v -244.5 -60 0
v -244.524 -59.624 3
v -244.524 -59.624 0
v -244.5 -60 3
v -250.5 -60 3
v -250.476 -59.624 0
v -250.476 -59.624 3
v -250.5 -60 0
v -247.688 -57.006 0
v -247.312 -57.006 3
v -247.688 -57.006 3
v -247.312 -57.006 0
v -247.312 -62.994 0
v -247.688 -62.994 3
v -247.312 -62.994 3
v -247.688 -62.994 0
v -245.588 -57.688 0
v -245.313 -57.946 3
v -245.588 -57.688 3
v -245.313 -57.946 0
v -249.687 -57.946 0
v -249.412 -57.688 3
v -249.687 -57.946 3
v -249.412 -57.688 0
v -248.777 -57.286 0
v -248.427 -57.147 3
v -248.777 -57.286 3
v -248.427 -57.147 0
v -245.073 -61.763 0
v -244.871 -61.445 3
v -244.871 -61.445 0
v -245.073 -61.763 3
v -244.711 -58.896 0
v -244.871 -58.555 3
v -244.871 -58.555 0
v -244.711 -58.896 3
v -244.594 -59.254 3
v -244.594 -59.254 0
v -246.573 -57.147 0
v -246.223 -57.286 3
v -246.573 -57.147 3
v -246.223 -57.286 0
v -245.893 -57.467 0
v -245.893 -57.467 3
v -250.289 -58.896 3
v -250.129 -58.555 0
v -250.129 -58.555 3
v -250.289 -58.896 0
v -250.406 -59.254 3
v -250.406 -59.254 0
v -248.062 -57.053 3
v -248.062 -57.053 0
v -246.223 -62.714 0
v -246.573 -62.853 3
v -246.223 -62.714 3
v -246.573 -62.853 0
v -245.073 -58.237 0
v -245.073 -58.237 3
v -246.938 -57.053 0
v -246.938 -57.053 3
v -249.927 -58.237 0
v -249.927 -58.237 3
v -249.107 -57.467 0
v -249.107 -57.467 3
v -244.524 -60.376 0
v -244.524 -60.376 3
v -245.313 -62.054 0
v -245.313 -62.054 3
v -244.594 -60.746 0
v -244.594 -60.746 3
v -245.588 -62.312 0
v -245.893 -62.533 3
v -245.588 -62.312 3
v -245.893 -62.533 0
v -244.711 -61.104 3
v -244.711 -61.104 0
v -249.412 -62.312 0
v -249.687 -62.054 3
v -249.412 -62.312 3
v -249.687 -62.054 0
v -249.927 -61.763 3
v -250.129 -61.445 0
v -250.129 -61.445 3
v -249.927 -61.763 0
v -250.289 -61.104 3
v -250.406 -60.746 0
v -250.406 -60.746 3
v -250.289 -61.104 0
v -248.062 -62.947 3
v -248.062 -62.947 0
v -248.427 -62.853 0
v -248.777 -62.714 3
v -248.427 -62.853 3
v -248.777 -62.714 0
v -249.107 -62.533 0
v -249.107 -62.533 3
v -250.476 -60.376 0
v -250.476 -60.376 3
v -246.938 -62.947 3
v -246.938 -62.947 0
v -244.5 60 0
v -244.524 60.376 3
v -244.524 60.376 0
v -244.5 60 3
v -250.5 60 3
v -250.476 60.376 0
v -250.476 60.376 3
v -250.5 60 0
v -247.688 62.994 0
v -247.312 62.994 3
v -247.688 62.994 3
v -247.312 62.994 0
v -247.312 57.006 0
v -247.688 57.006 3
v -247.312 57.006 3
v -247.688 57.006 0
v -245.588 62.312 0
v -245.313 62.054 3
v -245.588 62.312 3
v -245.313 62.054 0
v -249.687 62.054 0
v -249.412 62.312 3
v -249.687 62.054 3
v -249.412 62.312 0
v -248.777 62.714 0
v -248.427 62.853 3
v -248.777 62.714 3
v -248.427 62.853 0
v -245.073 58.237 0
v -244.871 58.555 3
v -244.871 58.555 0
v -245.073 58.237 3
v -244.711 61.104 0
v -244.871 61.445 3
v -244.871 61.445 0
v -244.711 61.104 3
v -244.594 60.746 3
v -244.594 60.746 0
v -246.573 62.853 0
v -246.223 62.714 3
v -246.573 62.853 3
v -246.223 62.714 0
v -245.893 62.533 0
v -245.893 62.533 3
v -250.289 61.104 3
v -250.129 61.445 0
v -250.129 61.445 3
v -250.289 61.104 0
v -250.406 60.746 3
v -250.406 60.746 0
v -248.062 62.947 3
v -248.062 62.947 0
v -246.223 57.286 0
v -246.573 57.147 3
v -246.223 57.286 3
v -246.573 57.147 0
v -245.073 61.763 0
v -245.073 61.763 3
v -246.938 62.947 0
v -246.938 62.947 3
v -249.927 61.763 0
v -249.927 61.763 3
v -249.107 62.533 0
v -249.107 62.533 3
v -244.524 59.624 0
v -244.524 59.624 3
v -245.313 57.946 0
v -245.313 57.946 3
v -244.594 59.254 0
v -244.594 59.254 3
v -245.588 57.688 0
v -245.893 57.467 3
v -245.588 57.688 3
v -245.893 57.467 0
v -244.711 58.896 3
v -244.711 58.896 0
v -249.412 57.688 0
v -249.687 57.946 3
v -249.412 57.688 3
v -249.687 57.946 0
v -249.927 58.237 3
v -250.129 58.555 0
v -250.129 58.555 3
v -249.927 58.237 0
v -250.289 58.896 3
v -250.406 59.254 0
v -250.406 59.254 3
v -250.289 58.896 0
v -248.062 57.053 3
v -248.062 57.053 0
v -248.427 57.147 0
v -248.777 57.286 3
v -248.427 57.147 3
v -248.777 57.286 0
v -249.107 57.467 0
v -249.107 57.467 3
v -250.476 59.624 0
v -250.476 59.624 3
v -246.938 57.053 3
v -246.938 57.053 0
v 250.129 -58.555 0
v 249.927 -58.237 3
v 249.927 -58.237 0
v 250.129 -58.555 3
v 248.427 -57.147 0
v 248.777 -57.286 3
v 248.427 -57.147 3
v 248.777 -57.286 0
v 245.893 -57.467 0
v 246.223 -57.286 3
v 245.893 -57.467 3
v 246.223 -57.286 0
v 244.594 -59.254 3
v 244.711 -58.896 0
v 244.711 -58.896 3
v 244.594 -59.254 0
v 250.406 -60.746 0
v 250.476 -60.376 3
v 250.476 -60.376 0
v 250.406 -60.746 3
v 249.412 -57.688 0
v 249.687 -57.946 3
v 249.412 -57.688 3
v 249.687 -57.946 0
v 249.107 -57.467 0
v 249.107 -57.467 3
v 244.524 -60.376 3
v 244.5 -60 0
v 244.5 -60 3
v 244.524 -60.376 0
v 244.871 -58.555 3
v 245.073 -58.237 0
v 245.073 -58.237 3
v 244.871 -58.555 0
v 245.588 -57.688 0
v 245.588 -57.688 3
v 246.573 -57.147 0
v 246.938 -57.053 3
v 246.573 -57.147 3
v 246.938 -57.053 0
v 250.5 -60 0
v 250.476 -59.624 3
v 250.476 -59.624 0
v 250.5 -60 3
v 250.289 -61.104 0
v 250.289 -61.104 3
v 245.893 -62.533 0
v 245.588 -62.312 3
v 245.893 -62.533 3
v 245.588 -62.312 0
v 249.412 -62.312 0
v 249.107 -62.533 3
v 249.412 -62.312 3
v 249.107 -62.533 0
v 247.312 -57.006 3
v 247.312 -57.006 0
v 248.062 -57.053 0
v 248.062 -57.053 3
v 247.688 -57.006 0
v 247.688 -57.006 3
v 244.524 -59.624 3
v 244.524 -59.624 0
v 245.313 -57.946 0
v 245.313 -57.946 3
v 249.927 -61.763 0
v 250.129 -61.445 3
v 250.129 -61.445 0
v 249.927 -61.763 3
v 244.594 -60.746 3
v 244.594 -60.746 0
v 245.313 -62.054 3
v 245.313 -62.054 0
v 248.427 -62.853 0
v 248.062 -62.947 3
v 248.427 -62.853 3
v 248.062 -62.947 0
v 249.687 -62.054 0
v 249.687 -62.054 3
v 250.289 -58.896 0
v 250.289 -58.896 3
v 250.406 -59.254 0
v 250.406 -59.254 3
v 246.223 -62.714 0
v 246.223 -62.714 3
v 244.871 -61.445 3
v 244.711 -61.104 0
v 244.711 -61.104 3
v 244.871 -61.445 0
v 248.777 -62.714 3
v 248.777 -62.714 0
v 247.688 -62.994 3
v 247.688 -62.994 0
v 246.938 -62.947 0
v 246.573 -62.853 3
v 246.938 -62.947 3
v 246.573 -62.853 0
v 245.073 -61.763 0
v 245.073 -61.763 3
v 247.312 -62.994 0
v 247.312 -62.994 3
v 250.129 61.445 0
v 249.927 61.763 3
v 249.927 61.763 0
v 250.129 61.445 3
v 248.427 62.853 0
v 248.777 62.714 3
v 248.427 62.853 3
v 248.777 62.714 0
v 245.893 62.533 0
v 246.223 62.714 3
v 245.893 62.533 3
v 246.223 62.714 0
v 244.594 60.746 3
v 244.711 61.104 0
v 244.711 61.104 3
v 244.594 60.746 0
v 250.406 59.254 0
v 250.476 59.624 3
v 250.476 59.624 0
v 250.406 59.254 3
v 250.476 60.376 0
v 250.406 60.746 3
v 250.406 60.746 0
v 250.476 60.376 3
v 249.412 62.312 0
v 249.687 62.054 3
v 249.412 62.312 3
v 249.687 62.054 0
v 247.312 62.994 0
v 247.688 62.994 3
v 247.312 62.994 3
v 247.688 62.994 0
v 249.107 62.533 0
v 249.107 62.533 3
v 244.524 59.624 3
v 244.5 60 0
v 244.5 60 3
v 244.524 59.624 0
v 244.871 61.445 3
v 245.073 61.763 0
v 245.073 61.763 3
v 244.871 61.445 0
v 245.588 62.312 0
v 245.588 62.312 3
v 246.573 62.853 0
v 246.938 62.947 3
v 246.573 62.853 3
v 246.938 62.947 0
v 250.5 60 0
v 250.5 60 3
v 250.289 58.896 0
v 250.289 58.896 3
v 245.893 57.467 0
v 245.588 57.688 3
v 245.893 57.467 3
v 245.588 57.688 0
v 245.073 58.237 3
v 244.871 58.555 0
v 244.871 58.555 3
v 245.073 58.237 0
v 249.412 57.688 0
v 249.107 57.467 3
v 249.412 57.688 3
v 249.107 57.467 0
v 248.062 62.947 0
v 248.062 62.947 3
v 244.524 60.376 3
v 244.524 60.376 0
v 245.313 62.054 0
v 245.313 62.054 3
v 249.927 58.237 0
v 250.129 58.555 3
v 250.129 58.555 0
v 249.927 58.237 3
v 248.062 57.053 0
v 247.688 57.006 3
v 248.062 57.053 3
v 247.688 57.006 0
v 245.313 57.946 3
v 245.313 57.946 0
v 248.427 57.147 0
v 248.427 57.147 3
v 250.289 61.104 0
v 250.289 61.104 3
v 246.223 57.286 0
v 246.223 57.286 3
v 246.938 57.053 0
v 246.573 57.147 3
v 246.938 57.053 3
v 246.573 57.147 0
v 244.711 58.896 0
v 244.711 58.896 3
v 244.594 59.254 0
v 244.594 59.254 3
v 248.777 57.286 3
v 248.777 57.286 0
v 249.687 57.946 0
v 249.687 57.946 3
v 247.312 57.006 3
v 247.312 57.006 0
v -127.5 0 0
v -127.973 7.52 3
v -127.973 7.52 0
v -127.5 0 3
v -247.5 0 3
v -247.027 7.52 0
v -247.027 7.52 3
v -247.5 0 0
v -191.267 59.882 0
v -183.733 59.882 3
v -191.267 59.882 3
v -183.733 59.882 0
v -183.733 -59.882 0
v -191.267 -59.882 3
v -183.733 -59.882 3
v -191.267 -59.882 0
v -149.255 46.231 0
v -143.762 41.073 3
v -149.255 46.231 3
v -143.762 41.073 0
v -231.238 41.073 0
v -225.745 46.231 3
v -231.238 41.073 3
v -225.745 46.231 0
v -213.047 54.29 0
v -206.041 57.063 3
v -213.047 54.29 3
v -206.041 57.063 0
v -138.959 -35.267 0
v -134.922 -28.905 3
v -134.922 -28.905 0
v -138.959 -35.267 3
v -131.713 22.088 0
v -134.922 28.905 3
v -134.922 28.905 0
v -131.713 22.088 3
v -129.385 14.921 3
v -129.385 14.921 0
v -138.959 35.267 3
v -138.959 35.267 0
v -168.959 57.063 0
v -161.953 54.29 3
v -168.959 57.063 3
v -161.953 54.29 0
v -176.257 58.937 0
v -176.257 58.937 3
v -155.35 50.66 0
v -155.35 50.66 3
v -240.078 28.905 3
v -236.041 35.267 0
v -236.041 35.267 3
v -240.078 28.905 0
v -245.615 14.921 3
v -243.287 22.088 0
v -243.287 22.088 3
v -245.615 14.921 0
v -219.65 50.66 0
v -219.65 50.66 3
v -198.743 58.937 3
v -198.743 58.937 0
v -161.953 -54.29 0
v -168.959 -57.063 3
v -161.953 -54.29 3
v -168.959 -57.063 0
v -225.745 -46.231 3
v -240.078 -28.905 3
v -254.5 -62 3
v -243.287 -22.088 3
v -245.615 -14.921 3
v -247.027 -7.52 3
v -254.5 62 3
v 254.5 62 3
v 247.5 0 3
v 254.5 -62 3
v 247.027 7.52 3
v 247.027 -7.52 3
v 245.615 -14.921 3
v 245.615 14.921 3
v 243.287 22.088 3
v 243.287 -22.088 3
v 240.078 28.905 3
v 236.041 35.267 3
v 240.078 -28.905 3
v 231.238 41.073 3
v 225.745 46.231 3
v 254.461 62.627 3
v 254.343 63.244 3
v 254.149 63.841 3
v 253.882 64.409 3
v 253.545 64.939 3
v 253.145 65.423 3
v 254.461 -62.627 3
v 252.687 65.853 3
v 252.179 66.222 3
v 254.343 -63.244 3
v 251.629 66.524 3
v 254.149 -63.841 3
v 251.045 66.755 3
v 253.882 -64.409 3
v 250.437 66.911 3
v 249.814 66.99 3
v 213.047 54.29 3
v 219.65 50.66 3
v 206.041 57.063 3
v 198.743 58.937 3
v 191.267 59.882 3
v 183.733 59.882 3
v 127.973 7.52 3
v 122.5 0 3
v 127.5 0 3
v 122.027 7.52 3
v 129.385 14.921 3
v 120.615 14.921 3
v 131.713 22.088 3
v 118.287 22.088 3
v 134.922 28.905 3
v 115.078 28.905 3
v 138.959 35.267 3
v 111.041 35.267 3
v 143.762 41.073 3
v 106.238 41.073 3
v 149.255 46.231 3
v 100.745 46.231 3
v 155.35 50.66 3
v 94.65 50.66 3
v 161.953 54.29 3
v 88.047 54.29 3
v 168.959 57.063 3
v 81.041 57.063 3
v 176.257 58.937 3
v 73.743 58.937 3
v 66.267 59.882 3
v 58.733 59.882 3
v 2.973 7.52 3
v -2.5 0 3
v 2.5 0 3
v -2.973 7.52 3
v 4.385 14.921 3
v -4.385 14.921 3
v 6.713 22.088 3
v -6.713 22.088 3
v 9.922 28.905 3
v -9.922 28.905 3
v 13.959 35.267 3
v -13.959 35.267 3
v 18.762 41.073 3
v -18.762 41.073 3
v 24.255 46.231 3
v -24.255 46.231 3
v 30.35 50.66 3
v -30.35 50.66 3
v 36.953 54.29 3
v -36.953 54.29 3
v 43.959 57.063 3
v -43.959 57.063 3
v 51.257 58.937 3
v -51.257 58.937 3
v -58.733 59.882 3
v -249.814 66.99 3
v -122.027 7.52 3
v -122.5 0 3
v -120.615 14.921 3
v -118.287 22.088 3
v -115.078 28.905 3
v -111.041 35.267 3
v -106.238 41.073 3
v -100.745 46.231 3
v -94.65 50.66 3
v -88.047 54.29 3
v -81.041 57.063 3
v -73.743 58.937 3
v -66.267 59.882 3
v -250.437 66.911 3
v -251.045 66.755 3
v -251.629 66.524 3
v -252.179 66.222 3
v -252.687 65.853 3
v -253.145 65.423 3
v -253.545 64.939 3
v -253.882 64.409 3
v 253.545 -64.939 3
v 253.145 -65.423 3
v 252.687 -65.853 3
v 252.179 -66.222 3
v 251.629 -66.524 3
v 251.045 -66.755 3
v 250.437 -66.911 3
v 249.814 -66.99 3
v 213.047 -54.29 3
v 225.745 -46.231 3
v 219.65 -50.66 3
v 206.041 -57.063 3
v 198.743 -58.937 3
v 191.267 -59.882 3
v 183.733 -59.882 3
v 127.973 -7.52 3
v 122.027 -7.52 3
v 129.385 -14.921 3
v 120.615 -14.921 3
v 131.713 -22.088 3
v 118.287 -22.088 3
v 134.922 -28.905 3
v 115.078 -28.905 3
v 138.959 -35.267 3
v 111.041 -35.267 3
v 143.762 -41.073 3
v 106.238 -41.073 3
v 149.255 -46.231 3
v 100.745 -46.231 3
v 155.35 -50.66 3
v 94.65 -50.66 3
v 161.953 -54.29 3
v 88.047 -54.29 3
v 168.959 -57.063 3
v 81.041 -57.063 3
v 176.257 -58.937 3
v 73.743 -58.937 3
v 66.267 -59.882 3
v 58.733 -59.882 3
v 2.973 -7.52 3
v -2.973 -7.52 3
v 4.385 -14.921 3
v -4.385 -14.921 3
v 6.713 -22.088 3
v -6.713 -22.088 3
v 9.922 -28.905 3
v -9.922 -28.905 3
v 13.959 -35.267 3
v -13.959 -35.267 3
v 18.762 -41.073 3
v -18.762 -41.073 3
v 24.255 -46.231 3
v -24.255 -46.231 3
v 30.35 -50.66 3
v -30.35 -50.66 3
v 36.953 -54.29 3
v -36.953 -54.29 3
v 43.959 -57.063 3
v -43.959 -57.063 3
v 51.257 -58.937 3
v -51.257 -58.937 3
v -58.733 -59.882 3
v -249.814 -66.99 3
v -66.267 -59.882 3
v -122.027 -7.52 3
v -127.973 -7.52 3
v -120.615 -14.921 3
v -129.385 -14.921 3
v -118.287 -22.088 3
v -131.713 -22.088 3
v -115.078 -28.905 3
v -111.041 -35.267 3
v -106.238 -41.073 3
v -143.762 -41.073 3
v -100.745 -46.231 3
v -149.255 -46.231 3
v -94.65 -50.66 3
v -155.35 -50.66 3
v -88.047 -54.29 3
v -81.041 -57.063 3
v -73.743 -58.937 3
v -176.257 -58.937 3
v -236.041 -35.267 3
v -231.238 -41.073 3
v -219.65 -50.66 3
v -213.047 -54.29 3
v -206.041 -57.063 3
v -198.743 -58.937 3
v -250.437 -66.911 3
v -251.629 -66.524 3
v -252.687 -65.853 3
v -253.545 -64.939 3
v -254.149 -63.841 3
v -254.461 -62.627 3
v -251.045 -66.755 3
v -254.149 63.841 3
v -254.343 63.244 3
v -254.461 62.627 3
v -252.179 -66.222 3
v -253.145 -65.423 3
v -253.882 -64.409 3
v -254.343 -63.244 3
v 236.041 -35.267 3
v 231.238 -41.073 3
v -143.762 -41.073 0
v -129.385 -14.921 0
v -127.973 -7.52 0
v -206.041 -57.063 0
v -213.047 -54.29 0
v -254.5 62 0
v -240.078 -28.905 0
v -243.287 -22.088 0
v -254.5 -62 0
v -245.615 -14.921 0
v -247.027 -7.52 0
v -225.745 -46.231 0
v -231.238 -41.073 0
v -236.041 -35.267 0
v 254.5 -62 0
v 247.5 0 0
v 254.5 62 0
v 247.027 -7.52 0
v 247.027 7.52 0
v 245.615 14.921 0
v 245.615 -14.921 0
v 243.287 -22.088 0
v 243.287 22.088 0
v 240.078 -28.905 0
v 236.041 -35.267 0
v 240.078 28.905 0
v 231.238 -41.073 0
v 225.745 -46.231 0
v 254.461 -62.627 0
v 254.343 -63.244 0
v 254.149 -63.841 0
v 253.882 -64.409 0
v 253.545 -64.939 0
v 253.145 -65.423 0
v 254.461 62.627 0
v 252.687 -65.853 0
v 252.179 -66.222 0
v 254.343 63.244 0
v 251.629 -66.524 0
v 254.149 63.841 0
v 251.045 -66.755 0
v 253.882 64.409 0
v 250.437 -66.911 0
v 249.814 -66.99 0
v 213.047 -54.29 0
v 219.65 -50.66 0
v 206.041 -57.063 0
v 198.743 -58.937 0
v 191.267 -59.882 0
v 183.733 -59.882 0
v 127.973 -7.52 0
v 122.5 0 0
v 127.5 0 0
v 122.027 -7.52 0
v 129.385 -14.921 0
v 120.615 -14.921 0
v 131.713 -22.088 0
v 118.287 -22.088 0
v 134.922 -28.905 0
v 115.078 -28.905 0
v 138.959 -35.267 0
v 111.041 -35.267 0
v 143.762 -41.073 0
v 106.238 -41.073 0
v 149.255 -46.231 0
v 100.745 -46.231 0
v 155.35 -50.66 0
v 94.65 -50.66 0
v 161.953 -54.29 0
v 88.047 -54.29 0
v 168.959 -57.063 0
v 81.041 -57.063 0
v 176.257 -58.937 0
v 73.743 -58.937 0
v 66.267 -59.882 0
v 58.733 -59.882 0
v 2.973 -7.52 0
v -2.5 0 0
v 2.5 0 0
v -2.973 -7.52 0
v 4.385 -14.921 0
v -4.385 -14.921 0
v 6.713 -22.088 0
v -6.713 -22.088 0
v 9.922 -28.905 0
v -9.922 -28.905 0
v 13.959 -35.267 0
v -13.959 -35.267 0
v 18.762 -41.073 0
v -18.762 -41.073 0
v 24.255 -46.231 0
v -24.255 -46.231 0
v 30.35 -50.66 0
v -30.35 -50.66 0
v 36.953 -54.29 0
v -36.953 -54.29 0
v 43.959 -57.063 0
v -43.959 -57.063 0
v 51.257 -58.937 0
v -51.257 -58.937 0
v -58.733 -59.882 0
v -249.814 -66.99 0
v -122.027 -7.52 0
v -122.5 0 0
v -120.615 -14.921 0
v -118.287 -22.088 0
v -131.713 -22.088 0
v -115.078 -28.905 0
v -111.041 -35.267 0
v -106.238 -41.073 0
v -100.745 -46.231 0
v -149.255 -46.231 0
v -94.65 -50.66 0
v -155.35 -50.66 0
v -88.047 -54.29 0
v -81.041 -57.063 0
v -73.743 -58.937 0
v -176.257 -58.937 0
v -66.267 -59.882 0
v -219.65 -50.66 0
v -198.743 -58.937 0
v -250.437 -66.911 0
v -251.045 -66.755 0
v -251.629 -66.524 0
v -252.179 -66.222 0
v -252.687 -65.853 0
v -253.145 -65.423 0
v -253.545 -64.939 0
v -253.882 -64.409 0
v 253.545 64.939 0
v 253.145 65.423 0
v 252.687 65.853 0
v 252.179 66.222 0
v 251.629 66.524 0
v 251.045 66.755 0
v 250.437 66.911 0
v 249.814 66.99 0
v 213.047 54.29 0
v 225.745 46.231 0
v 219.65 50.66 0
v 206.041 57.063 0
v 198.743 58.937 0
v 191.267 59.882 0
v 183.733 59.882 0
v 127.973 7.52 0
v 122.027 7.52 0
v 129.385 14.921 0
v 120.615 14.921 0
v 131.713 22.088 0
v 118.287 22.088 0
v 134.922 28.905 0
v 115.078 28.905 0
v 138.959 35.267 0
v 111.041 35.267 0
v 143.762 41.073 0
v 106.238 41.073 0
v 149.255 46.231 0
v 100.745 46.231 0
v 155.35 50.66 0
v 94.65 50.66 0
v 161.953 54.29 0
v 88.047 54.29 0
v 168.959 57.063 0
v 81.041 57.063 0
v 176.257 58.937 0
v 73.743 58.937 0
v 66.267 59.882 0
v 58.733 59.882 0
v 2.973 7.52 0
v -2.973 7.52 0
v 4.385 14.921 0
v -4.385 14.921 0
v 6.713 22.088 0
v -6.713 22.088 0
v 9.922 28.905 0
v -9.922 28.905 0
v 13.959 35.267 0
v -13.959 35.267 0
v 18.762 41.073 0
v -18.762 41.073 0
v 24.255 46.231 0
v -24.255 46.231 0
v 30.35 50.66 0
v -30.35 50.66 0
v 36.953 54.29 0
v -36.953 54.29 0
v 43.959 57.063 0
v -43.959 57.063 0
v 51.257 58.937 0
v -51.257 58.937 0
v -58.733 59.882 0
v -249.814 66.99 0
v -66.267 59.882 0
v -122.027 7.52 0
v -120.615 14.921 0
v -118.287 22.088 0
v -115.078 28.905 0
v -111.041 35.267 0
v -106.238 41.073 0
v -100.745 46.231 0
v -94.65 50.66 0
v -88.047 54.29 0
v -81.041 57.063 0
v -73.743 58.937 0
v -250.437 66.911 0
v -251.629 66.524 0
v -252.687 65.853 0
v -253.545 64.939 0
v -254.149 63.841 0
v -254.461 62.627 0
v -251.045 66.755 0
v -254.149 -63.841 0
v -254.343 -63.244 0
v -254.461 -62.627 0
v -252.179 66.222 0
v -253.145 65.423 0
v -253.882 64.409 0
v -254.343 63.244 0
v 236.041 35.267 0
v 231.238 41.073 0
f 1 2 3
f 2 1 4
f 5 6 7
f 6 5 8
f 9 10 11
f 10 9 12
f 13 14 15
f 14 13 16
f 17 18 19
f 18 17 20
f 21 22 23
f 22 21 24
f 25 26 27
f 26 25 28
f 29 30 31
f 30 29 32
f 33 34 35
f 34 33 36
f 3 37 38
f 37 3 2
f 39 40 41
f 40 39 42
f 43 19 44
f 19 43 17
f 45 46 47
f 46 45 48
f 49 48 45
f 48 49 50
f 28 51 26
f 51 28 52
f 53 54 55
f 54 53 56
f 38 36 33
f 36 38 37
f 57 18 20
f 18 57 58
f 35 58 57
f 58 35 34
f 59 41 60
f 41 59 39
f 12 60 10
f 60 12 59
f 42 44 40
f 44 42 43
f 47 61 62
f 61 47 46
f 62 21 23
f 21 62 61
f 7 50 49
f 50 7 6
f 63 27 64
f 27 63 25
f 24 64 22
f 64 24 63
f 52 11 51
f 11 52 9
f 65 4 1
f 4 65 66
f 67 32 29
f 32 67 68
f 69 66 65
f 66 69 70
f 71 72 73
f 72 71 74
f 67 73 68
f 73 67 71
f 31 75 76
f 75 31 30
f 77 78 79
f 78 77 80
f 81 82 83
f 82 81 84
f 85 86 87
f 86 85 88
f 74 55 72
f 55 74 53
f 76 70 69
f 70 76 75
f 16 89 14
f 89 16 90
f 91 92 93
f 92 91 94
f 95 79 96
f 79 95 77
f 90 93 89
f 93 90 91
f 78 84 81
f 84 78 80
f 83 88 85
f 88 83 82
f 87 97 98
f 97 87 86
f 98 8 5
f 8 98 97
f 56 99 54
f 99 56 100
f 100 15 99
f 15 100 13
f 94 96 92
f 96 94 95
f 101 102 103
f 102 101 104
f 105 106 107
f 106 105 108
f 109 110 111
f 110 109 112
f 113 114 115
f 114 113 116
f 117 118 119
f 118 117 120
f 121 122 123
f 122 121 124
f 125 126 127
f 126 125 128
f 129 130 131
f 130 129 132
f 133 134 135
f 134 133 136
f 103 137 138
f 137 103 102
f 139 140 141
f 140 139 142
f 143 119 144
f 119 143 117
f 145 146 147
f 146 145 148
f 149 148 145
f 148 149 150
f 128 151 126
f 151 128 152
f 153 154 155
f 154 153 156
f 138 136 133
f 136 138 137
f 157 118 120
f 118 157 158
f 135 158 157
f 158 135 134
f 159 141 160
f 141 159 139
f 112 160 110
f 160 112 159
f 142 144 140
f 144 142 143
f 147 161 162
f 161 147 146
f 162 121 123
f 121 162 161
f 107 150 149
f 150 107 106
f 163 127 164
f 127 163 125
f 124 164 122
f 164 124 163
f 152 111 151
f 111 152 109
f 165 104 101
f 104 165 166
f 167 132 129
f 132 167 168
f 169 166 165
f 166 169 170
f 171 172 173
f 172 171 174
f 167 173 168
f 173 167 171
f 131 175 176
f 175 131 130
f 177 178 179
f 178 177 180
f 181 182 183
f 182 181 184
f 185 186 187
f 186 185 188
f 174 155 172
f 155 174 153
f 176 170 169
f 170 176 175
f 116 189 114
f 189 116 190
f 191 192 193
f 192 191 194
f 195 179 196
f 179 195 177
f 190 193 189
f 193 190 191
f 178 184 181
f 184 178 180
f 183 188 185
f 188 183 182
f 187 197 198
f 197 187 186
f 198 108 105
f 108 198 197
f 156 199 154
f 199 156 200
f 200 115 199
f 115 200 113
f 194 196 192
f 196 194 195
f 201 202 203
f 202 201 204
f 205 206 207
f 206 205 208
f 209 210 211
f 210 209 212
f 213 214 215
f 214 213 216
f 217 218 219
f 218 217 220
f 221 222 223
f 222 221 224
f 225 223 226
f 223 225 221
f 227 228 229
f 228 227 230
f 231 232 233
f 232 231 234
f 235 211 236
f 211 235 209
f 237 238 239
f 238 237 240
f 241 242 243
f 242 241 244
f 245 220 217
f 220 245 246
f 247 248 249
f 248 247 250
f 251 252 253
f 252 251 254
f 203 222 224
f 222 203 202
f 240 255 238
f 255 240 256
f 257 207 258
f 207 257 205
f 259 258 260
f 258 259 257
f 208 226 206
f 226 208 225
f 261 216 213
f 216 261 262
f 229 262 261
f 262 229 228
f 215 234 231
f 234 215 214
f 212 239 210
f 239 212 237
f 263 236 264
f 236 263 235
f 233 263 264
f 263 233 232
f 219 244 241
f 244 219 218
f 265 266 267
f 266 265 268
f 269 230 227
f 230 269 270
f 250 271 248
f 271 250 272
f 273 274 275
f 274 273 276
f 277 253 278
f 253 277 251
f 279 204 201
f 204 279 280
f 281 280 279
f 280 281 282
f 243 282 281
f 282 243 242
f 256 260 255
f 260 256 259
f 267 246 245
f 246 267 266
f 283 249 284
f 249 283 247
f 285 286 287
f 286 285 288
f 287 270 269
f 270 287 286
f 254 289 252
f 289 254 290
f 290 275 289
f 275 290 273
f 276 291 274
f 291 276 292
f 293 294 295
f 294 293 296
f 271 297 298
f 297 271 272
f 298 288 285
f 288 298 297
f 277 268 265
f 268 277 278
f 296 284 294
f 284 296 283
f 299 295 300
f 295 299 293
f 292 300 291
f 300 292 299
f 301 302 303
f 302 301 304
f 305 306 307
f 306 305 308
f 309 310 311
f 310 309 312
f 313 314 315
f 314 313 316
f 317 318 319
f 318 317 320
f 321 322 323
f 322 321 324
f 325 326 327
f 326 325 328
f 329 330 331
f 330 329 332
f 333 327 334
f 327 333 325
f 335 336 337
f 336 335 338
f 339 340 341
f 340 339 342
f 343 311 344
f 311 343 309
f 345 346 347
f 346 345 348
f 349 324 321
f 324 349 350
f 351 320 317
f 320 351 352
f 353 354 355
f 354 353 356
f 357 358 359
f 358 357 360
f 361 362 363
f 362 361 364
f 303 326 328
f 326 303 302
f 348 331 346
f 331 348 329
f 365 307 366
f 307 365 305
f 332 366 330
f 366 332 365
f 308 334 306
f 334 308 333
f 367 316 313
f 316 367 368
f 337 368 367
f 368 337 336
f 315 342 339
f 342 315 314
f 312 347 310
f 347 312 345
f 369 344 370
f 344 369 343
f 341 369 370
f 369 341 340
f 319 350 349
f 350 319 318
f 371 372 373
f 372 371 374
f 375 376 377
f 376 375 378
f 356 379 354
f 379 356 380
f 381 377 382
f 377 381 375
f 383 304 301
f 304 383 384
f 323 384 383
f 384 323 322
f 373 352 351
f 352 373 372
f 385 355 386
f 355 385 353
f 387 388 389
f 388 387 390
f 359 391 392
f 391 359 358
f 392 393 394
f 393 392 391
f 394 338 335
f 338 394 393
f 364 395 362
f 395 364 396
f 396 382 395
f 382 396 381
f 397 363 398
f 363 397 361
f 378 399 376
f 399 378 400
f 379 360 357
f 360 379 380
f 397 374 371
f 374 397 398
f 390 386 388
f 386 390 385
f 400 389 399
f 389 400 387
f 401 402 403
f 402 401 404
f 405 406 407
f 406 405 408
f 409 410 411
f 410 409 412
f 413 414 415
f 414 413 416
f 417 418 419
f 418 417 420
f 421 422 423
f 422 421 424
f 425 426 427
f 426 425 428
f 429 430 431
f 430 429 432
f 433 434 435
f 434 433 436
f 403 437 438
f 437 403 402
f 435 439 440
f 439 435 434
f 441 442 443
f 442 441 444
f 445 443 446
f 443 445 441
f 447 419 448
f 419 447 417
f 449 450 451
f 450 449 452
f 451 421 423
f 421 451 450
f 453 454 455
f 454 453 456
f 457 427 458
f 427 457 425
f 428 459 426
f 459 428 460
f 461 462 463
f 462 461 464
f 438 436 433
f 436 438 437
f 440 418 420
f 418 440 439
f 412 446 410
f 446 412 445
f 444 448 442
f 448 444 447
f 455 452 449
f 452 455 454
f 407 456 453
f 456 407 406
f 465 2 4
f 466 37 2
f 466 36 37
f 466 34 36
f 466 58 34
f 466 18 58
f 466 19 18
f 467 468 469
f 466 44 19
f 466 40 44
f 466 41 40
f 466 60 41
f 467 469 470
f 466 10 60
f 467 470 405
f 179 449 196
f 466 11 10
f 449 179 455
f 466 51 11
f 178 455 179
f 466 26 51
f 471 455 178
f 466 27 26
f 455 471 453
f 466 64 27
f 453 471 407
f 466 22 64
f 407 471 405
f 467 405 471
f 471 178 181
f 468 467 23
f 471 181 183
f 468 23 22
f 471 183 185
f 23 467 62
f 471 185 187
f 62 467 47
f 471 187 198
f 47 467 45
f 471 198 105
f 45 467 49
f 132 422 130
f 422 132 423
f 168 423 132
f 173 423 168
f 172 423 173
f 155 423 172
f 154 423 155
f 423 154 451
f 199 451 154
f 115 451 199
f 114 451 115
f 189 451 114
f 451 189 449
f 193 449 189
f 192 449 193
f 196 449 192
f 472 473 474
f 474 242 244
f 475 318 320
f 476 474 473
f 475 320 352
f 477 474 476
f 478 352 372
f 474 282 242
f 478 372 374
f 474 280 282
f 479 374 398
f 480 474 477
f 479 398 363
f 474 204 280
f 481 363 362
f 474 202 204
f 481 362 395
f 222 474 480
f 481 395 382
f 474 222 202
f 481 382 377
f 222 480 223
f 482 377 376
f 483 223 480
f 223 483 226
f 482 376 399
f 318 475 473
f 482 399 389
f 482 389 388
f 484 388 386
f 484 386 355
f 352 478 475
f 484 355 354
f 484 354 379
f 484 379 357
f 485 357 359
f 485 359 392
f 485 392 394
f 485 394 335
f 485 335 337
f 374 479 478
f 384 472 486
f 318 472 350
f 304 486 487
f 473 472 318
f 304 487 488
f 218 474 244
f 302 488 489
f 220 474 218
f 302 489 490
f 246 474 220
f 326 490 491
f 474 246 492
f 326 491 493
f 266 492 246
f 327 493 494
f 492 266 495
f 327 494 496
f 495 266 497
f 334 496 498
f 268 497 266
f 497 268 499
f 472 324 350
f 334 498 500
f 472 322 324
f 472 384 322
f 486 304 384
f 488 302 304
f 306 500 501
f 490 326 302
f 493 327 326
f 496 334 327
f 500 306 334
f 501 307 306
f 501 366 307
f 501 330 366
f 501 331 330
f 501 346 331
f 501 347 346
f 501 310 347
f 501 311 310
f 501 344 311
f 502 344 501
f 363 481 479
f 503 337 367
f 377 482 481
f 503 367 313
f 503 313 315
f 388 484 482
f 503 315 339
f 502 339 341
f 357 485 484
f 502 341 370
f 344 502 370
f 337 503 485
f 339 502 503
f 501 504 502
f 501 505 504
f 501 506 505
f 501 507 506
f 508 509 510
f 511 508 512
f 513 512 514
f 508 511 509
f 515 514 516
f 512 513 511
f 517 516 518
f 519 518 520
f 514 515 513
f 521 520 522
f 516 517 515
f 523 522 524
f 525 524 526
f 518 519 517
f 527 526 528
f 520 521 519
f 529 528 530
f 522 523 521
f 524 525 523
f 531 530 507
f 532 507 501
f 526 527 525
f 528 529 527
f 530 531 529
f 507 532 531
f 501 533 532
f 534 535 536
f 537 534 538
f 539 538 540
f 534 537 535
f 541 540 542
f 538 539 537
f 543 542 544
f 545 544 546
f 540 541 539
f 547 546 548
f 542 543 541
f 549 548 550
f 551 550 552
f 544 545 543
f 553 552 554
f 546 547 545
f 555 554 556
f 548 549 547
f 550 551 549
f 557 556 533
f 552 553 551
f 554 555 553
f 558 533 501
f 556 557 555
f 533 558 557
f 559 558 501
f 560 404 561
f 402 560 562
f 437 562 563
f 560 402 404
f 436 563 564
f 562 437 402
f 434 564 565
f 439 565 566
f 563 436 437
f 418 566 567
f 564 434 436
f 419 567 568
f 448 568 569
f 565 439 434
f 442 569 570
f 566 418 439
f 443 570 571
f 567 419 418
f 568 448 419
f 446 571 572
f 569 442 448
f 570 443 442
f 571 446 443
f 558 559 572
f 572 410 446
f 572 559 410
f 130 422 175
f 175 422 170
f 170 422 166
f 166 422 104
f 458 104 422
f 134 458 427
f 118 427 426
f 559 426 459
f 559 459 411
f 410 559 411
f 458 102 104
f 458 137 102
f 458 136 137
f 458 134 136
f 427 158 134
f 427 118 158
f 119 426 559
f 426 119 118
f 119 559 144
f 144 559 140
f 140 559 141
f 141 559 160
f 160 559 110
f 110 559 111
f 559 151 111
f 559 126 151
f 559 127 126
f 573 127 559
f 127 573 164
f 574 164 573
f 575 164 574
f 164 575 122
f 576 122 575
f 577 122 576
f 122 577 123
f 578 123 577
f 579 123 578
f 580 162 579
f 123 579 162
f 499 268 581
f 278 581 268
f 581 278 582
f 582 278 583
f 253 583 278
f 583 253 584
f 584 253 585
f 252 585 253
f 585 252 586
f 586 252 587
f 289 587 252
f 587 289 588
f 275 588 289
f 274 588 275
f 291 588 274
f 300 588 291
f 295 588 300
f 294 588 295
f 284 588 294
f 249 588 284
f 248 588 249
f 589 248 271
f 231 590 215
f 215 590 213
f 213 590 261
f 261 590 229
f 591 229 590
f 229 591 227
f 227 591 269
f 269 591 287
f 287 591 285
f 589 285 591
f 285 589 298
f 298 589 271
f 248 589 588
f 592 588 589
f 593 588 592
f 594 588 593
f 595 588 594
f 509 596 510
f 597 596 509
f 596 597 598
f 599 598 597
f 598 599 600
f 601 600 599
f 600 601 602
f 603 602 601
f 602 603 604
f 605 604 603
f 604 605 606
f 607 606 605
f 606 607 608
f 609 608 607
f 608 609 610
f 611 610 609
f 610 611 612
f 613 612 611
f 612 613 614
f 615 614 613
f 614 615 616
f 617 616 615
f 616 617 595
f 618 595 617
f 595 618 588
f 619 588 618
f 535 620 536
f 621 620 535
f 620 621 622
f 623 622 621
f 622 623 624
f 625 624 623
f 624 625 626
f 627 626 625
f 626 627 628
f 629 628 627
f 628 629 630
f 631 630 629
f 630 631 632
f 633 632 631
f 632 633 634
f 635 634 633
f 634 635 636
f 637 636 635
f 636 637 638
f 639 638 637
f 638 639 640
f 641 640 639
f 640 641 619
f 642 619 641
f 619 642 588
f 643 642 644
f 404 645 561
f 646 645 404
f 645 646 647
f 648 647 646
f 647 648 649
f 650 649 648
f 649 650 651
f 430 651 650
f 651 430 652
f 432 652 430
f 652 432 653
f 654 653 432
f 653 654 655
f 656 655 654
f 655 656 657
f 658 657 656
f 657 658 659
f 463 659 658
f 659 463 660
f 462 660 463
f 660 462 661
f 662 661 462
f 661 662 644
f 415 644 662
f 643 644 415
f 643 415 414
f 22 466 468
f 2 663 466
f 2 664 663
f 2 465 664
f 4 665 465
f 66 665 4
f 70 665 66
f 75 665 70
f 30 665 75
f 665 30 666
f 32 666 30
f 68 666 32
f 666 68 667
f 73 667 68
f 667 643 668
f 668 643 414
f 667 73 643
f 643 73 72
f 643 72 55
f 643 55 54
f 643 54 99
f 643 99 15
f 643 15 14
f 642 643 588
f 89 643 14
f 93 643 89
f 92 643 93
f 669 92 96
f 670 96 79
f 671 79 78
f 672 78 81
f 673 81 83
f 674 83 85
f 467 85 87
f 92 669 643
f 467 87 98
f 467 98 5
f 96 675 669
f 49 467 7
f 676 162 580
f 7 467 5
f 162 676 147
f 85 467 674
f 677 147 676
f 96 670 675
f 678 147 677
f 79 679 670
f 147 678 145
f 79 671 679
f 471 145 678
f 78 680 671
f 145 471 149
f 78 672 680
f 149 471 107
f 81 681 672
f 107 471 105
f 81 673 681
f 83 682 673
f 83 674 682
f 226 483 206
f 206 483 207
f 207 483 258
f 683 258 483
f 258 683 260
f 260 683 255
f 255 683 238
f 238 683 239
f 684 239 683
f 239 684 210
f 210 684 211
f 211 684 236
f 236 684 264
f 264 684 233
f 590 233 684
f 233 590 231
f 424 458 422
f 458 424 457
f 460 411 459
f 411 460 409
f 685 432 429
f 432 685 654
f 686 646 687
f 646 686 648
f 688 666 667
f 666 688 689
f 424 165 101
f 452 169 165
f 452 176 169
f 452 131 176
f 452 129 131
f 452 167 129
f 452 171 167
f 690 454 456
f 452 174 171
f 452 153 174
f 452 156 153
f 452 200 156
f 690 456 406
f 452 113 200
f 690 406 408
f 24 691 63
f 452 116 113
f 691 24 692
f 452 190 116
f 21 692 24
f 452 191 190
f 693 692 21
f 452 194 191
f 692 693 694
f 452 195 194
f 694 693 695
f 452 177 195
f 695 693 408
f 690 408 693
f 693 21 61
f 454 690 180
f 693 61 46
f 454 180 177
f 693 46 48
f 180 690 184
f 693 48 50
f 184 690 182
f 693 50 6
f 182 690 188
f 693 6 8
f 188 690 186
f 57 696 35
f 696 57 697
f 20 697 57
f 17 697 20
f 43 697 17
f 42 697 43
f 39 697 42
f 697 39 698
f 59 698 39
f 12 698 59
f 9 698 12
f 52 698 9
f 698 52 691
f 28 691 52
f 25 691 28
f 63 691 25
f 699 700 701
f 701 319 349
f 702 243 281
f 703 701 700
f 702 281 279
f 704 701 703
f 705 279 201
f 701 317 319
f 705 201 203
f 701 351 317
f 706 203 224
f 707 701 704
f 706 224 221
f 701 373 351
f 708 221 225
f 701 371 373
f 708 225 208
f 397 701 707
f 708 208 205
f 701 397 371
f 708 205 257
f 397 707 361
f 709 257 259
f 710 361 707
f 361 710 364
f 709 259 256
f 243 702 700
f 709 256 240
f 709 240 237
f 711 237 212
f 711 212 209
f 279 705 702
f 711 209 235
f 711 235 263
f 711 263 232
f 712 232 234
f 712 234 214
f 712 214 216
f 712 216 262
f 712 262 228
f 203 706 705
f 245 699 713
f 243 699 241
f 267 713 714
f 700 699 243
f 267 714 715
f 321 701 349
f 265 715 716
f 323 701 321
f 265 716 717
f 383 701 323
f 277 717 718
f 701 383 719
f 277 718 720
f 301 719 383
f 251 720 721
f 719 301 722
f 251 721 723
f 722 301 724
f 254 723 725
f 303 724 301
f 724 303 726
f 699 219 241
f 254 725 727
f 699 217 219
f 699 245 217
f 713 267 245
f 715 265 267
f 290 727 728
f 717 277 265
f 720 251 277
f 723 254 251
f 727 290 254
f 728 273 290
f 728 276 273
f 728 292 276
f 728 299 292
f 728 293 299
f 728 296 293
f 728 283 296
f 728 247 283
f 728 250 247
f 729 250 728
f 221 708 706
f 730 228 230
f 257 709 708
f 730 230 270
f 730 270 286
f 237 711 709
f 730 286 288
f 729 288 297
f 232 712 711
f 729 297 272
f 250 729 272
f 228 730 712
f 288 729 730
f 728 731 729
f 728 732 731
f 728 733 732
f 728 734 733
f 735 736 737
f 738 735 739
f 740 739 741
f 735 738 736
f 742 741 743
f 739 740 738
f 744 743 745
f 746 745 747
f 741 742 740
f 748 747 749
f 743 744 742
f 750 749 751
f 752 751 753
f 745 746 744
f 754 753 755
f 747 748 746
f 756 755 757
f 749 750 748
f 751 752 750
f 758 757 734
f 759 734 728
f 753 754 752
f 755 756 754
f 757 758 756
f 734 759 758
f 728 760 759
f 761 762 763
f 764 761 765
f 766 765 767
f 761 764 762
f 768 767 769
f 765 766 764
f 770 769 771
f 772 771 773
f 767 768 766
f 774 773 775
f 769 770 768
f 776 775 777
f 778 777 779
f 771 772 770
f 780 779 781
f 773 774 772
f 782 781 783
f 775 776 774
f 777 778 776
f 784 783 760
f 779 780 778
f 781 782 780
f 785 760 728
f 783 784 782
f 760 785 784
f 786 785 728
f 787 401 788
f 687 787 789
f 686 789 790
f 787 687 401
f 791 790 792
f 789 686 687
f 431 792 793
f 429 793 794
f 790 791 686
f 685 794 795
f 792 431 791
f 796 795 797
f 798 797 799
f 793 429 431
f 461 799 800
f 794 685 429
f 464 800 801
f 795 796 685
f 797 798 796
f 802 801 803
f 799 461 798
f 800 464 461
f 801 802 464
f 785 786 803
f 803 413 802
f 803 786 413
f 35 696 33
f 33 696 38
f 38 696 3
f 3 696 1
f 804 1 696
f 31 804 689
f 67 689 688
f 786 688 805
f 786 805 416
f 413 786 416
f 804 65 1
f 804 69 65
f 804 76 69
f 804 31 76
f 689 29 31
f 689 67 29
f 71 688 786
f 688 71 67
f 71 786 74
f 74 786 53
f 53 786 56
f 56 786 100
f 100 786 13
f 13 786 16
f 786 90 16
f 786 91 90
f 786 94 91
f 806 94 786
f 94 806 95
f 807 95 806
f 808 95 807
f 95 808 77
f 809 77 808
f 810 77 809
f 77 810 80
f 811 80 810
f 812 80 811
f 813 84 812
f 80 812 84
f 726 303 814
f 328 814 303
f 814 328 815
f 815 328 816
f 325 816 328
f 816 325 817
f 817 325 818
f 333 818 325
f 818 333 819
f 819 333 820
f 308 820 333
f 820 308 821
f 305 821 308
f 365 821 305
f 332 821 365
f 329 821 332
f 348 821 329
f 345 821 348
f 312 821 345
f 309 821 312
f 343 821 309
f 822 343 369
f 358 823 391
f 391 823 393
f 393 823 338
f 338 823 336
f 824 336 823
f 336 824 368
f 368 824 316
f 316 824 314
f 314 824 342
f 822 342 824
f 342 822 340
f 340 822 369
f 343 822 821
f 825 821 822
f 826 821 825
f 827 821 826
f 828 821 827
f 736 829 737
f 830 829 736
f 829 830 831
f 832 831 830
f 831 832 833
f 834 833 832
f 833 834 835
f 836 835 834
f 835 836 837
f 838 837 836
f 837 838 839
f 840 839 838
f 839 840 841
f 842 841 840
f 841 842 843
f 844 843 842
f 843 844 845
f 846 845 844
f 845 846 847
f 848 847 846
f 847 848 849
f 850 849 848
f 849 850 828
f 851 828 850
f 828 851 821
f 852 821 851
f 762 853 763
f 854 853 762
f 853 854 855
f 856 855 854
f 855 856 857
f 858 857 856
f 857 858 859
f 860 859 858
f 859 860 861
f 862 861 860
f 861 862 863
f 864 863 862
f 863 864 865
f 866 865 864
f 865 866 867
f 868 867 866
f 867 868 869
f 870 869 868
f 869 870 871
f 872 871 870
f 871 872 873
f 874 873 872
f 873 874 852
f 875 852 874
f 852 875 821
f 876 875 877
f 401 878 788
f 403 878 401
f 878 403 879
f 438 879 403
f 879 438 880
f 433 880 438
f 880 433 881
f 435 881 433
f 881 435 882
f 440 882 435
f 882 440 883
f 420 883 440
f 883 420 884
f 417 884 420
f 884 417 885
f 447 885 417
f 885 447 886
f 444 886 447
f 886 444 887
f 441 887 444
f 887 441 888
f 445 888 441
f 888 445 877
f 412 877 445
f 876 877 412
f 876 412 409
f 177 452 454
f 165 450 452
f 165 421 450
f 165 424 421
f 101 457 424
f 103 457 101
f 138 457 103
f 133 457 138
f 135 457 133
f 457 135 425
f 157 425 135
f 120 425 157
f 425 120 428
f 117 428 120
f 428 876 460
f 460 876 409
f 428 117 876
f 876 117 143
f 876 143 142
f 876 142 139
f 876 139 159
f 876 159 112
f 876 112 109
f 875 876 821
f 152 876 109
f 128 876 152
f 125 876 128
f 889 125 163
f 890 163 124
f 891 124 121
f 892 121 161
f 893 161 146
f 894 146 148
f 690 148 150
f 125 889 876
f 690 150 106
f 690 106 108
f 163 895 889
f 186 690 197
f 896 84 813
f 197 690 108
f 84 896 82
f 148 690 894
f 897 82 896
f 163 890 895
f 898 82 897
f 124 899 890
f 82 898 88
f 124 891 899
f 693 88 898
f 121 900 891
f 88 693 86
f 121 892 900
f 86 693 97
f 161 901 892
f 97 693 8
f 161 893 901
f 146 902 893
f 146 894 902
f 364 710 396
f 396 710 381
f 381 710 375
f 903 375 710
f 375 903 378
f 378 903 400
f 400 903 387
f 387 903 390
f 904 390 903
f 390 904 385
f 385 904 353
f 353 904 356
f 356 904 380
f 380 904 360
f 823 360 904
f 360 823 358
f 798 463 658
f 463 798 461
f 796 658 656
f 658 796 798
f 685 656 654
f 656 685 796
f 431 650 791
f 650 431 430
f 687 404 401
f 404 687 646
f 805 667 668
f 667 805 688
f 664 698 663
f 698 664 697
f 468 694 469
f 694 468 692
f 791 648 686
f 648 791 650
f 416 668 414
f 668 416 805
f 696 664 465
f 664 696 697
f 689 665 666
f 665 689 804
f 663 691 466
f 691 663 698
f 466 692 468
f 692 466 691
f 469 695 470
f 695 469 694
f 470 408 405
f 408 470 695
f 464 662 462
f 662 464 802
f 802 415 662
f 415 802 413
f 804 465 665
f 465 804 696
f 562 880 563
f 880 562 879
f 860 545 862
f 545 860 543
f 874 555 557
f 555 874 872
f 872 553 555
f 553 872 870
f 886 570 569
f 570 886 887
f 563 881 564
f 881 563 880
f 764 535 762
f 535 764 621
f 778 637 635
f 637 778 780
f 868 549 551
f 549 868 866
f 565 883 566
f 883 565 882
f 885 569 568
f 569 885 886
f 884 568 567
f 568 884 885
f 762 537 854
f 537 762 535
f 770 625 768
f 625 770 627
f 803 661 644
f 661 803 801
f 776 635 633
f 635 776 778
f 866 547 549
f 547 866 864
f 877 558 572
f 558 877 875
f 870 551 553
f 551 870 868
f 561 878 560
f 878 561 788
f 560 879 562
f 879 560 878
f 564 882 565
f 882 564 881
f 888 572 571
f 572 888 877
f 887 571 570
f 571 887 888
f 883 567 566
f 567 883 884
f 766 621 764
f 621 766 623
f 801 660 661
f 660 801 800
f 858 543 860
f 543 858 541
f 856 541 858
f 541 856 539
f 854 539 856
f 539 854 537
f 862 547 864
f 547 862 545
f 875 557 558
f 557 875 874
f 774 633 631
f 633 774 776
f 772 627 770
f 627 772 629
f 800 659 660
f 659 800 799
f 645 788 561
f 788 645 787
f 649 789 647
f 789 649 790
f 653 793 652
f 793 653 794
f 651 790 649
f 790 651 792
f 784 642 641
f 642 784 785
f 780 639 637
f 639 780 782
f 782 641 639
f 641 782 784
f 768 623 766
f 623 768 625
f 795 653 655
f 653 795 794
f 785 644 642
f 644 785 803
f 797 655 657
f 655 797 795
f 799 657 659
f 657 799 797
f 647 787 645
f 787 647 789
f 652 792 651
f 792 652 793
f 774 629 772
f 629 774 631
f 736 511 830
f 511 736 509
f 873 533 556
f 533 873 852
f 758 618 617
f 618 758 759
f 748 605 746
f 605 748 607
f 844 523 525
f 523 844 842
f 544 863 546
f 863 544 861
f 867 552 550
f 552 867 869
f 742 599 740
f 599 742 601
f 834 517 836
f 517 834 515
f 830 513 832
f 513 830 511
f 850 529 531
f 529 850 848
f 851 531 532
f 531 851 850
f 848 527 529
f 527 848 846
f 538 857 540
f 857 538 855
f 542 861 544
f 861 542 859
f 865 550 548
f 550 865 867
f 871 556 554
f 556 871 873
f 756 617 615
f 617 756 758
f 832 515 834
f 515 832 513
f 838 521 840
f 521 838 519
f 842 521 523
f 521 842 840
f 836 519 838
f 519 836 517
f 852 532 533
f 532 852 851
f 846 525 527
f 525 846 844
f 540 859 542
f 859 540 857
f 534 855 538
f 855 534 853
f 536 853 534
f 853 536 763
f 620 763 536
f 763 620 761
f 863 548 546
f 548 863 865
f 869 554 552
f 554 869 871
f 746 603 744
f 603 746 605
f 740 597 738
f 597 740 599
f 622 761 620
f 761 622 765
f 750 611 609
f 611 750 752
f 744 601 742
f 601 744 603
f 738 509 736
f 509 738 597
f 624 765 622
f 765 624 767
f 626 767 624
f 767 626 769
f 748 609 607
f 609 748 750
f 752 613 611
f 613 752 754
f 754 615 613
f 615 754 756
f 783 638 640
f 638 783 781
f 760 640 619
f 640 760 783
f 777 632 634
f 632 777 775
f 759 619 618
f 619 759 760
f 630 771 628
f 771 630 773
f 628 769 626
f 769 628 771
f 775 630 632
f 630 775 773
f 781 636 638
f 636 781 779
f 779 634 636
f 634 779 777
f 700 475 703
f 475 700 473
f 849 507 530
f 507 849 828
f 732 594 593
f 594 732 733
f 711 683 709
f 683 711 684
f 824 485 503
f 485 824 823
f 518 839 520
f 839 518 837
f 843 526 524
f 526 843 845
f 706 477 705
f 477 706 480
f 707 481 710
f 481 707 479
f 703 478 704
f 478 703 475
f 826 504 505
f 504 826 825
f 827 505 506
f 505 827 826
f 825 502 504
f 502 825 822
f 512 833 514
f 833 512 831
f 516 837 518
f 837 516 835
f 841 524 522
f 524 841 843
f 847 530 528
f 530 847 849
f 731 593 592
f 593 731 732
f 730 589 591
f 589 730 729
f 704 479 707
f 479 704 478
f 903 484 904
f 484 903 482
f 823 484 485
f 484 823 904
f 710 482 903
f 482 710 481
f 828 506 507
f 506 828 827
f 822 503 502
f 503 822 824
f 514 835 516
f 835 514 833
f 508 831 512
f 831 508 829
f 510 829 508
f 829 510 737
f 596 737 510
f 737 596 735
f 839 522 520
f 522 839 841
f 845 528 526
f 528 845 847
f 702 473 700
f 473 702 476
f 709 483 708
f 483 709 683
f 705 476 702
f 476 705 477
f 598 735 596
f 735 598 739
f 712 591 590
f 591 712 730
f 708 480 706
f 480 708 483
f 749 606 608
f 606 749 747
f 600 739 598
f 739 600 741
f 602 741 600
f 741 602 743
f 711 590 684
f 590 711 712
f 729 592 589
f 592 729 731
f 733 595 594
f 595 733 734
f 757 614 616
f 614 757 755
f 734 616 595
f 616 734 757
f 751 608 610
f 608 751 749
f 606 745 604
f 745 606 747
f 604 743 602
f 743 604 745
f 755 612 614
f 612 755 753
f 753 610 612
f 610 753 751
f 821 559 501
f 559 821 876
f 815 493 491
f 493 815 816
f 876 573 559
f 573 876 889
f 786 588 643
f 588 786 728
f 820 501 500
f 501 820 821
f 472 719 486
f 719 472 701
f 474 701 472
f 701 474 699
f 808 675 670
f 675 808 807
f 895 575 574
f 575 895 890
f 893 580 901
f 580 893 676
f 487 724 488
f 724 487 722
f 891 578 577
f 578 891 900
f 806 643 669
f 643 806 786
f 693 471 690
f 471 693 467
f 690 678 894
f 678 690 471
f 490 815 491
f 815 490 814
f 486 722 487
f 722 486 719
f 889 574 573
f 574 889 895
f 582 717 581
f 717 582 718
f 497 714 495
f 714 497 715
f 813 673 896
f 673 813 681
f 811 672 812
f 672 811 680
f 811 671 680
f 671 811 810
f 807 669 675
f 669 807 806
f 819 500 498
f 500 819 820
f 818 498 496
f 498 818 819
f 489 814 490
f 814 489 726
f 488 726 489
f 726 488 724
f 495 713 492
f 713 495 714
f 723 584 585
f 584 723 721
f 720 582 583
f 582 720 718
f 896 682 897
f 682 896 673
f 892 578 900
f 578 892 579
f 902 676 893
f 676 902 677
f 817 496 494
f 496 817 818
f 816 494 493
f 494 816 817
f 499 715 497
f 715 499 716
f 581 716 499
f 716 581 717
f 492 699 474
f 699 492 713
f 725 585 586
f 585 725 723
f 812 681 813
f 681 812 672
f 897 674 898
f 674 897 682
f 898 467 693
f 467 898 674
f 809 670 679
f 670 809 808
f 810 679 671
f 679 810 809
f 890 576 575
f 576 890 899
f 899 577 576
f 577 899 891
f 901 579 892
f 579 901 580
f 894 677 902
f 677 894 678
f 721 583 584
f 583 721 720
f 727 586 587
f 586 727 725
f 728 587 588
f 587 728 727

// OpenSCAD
$fn = 50;


difference() {
	union() {
		hull() {
			translate(v = [-249.5000000000, 62.0000000000, 0]) {
				cylinder(h = 3, r = 5);
			}
			translate(v = [249.5000000000, 62.0000000000, 0]) {
				cylinder(h = 3, r = 5);
			}
			translate(v = [-249.5000000000, -62.0000000000, 0]) {
				cylinder(h = 3, r = 5);
			}
			translate(v = [249.5000000000, -62.0000000000, 0]) {
				cylinder(h = 3, r = 5);
			}
		}
	}
	union() {
		#translate(v = [-247.5000000000, -60.0000000000, -100.0000000000]) {
			cylinder(h = 200, r = 3.0000000000);
		}
		#translate(v = [-247.5000000000, 60.0000000000, -100.0000000000]) {
			cylinder(h = 200, r = 3.0000000000);
		}
		#translate(v = [247.5000000000, -60.0000000000, -100.0000000000]) {
			cylinder(h = 200, r = 3.0000000000);
		}
		#translate(v = [247.5000000000, 60.0000000000, -100.0000000000]) {
			cylinder(h = 200, r = 3.0000000000);
		}
		#translate(v = [-187.5000000000, 0, 0]) {
			cylinder(h = 3, r = 60.0000000000);
		}
		#translate(v = [-62.5000000000, 0, 0]) {
			cylinder(h = 3, r = 60.0000000000);
		}
		#translate(v = [62.5000000000, 0, 0]) {
			cylinder(h = 3, r = 60.0000000000);
		}
		#translate(v = [187.5000000000, 0, 0]) {
			cylinder(h = 3, r = 60.0000000000);
		}
	}
}
